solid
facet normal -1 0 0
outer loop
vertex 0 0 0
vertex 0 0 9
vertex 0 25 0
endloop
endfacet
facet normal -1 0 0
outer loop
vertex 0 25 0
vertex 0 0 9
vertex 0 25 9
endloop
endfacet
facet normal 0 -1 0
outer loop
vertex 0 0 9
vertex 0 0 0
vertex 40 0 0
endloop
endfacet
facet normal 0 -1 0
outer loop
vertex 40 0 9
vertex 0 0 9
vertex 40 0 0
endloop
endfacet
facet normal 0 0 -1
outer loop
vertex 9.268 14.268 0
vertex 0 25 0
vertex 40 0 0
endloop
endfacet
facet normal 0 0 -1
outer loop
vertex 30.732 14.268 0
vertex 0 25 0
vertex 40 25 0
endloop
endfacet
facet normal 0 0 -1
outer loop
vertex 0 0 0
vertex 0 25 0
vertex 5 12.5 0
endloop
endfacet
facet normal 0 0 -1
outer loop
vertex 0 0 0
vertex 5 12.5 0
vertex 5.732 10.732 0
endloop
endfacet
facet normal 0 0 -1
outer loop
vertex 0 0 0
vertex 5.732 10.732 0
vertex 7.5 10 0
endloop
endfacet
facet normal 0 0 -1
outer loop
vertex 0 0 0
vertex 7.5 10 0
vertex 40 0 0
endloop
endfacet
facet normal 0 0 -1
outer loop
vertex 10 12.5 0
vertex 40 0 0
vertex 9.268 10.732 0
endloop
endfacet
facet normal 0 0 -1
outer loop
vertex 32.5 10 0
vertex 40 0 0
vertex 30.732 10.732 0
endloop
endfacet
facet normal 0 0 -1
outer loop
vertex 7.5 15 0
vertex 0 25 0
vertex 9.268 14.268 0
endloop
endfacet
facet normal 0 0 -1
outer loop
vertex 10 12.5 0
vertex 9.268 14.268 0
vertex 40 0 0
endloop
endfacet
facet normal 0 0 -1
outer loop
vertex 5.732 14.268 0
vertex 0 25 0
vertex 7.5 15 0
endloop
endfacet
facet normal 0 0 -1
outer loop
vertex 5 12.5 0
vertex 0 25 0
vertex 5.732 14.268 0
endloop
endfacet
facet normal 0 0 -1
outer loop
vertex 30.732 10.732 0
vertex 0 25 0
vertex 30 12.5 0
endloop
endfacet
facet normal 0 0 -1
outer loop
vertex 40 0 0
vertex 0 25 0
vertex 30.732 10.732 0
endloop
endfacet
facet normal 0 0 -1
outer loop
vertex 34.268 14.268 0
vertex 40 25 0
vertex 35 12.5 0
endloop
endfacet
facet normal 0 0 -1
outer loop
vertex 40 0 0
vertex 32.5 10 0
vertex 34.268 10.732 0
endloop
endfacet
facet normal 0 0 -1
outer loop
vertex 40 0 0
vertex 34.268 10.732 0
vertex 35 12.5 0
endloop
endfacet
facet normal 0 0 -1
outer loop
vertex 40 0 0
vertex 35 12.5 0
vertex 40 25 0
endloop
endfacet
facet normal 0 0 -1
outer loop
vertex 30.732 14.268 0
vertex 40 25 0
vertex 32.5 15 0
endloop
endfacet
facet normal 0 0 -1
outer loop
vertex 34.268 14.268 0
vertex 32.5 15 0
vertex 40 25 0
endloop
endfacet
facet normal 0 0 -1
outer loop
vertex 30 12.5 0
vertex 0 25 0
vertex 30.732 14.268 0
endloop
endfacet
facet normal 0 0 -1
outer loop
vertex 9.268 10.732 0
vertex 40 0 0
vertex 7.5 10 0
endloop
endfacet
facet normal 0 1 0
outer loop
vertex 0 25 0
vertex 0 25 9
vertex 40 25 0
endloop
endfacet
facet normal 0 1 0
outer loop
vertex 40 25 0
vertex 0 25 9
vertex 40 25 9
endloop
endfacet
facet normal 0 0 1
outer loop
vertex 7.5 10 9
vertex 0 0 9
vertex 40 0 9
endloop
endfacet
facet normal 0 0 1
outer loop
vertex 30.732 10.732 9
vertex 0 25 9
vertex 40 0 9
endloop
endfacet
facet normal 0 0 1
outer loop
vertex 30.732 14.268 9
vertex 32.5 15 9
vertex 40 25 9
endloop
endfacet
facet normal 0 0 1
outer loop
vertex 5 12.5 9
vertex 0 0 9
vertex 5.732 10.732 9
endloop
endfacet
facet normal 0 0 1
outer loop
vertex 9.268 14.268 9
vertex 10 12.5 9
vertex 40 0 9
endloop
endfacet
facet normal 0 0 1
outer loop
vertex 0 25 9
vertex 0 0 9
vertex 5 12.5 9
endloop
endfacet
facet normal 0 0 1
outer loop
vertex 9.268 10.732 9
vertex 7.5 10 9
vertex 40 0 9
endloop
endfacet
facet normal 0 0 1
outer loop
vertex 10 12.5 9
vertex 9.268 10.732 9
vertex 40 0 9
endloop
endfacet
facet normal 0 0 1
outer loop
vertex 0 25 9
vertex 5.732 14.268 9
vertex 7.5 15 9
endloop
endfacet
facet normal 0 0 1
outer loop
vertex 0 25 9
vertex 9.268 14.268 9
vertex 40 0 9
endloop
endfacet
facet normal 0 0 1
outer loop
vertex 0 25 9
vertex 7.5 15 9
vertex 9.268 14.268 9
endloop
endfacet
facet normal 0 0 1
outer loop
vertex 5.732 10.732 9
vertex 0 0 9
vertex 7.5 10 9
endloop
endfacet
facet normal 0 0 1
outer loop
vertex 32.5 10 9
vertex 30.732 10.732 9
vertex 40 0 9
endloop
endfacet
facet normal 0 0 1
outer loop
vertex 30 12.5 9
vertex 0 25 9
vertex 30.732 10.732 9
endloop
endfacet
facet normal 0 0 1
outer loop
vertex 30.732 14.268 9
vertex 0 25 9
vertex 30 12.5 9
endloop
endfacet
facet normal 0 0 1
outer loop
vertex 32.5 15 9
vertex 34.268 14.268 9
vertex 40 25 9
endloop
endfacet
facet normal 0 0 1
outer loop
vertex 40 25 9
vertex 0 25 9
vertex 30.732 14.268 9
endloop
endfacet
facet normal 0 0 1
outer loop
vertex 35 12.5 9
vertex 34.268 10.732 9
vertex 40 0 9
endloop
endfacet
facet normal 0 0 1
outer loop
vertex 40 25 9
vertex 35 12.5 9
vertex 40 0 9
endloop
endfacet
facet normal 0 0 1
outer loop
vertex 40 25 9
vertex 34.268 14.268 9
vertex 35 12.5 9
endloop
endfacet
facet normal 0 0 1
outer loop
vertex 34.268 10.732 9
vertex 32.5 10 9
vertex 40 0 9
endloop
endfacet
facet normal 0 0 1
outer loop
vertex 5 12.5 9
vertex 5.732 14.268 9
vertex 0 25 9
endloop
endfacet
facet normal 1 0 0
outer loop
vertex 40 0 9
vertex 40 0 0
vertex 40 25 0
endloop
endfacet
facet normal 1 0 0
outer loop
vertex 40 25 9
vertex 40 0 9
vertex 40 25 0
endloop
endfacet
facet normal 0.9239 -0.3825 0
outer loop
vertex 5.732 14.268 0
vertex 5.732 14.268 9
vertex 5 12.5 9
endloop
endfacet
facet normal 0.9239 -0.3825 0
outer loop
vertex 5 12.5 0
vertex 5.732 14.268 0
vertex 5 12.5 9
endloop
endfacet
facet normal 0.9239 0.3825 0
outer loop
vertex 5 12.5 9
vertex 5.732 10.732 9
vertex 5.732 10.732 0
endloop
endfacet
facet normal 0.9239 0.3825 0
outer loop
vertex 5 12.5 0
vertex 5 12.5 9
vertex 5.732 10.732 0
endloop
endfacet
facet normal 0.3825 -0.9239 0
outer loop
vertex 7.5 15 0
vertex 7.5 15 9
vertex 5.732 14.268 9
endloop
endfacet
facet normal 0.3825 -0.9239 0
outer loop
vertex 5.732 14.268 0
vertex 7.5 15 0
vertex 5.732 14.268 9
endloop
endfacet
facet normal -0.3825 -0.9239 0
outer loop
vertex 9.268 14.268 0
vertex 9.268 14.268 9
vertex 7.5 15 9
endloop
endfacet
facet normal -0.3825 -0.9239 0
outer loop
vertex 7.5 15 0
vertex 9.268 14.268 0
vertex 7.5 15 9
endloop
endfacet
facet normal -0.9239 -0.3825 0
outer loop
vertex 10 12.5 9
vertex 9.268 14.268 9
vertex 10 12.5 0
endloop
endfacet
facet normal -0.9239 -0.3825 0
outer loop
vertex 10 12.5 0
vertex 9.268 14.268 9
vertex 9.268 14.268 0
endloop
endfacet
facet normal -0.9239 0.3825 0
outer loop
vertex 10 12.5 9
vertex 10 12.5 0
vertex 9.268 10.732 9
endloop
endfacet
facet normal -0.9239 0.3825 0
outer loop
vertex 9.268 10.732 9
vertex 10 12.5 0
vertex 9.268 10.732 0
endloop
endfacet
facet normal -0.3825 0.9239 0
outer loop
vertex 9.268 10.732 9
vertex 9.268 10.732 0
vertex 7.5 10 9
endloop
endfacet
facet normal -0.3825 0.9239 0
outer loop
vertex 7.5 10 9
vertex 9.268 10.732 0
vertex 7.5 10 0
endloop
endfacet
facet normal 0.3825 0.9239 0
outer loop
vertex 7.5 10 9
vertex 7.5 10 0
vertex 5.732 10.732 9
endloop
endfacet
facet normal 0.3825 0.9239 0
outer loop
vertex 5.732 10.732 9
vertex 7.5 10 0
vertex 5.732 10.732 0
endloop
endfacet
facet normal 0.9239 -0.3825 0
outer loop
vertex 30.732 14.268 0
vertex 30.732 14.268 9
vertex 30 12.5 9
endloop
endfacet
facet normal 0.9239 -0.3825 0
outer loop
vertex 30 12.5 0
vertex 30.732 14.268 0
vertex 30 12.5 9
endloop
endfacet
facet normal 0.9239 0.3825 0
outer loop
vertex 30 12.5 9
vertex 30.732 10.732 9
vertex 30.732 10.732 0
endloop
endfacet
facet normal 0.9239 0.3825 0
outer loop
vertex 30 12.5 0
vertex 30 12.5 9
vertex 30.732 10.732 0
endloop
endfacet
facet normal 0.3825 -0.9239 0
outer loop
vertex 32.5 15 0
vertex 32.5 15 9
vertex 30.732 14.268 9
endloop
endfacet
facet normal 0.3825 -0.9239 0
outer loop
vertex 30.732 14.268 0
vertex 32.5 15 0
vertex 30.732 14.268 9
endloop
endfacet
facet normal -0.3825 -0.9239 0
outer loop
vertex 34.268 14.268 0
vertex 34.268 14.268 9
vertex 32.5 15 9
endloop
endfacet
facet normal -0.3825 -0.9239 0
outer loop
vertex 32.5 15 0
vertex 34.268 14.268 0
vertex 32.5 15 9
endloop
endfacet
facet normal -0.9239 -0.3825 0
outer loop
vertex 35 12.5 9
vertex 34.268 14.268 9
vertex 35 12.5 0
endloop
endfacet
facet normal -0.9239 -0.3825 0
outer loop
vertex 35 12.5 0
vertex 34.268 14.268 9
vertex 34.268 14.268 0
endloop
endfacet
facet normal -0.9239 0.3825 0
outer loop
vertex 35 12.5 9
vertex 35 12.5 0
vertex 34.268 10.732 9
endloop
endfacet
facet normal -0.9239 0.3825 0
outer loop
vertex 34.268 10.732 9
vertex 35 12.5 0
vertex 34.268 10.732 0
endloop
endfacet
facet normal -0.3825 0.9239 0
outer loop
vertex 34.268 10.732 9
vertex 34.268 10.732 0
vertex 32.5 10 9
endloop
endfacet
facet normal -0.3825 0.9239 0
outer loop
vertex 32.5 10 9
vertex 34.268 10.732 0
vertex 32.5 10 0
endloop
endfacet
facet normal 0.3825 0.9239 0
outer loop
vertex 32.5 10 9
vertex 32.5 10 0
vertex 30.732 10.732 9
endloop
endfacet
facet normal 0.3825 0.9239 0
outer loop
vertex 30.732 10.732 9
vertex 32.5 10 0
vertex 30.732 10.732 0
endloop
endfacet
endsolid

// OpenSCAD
/*
 *   bolt_shim.scad
 *   Creates a simple shim for a bolt latch.
 *	
 *   Copyright (C) 2014  Mogue Carpenter
 *
 *    This program is free software: you can redistribute it and/or modify
 *    it under the terms of the GNU General Public License as published by
 *    the Free Software Foundation, either version 3 of the License, or
 *    (at your option) any later version.
 *
 *    This program is distributed in the hope that it will be useful,
 *    but WITHOUT ANY WARRANTY; without even the implied warranty of
 *    MERCHANTABILITY or FITNESS FOR A PARTICULAR PURPOSE.  See the
 *    GNU General Public License for more details.

 *    You should have received a copy of the GNU General Public License
 *    along with this programbvngn  If not, see <http://www.gnu.org/licenses/>.
*/

height = 9;
lenght = 40;
width = 25;

screw_l = 25;
screw_r = 2.5;

difference(){
	cube([lenght,width,height]);
	translate([(lenght-screw_l)/2,width/2,-0.5])
		cylinder(h=height+1, r= screw_r);	
	translate([lenght-(lenght-screw_l)/2,width/2,-0.5])
		cylinder(h=height+1, r= screw_r);	
}
